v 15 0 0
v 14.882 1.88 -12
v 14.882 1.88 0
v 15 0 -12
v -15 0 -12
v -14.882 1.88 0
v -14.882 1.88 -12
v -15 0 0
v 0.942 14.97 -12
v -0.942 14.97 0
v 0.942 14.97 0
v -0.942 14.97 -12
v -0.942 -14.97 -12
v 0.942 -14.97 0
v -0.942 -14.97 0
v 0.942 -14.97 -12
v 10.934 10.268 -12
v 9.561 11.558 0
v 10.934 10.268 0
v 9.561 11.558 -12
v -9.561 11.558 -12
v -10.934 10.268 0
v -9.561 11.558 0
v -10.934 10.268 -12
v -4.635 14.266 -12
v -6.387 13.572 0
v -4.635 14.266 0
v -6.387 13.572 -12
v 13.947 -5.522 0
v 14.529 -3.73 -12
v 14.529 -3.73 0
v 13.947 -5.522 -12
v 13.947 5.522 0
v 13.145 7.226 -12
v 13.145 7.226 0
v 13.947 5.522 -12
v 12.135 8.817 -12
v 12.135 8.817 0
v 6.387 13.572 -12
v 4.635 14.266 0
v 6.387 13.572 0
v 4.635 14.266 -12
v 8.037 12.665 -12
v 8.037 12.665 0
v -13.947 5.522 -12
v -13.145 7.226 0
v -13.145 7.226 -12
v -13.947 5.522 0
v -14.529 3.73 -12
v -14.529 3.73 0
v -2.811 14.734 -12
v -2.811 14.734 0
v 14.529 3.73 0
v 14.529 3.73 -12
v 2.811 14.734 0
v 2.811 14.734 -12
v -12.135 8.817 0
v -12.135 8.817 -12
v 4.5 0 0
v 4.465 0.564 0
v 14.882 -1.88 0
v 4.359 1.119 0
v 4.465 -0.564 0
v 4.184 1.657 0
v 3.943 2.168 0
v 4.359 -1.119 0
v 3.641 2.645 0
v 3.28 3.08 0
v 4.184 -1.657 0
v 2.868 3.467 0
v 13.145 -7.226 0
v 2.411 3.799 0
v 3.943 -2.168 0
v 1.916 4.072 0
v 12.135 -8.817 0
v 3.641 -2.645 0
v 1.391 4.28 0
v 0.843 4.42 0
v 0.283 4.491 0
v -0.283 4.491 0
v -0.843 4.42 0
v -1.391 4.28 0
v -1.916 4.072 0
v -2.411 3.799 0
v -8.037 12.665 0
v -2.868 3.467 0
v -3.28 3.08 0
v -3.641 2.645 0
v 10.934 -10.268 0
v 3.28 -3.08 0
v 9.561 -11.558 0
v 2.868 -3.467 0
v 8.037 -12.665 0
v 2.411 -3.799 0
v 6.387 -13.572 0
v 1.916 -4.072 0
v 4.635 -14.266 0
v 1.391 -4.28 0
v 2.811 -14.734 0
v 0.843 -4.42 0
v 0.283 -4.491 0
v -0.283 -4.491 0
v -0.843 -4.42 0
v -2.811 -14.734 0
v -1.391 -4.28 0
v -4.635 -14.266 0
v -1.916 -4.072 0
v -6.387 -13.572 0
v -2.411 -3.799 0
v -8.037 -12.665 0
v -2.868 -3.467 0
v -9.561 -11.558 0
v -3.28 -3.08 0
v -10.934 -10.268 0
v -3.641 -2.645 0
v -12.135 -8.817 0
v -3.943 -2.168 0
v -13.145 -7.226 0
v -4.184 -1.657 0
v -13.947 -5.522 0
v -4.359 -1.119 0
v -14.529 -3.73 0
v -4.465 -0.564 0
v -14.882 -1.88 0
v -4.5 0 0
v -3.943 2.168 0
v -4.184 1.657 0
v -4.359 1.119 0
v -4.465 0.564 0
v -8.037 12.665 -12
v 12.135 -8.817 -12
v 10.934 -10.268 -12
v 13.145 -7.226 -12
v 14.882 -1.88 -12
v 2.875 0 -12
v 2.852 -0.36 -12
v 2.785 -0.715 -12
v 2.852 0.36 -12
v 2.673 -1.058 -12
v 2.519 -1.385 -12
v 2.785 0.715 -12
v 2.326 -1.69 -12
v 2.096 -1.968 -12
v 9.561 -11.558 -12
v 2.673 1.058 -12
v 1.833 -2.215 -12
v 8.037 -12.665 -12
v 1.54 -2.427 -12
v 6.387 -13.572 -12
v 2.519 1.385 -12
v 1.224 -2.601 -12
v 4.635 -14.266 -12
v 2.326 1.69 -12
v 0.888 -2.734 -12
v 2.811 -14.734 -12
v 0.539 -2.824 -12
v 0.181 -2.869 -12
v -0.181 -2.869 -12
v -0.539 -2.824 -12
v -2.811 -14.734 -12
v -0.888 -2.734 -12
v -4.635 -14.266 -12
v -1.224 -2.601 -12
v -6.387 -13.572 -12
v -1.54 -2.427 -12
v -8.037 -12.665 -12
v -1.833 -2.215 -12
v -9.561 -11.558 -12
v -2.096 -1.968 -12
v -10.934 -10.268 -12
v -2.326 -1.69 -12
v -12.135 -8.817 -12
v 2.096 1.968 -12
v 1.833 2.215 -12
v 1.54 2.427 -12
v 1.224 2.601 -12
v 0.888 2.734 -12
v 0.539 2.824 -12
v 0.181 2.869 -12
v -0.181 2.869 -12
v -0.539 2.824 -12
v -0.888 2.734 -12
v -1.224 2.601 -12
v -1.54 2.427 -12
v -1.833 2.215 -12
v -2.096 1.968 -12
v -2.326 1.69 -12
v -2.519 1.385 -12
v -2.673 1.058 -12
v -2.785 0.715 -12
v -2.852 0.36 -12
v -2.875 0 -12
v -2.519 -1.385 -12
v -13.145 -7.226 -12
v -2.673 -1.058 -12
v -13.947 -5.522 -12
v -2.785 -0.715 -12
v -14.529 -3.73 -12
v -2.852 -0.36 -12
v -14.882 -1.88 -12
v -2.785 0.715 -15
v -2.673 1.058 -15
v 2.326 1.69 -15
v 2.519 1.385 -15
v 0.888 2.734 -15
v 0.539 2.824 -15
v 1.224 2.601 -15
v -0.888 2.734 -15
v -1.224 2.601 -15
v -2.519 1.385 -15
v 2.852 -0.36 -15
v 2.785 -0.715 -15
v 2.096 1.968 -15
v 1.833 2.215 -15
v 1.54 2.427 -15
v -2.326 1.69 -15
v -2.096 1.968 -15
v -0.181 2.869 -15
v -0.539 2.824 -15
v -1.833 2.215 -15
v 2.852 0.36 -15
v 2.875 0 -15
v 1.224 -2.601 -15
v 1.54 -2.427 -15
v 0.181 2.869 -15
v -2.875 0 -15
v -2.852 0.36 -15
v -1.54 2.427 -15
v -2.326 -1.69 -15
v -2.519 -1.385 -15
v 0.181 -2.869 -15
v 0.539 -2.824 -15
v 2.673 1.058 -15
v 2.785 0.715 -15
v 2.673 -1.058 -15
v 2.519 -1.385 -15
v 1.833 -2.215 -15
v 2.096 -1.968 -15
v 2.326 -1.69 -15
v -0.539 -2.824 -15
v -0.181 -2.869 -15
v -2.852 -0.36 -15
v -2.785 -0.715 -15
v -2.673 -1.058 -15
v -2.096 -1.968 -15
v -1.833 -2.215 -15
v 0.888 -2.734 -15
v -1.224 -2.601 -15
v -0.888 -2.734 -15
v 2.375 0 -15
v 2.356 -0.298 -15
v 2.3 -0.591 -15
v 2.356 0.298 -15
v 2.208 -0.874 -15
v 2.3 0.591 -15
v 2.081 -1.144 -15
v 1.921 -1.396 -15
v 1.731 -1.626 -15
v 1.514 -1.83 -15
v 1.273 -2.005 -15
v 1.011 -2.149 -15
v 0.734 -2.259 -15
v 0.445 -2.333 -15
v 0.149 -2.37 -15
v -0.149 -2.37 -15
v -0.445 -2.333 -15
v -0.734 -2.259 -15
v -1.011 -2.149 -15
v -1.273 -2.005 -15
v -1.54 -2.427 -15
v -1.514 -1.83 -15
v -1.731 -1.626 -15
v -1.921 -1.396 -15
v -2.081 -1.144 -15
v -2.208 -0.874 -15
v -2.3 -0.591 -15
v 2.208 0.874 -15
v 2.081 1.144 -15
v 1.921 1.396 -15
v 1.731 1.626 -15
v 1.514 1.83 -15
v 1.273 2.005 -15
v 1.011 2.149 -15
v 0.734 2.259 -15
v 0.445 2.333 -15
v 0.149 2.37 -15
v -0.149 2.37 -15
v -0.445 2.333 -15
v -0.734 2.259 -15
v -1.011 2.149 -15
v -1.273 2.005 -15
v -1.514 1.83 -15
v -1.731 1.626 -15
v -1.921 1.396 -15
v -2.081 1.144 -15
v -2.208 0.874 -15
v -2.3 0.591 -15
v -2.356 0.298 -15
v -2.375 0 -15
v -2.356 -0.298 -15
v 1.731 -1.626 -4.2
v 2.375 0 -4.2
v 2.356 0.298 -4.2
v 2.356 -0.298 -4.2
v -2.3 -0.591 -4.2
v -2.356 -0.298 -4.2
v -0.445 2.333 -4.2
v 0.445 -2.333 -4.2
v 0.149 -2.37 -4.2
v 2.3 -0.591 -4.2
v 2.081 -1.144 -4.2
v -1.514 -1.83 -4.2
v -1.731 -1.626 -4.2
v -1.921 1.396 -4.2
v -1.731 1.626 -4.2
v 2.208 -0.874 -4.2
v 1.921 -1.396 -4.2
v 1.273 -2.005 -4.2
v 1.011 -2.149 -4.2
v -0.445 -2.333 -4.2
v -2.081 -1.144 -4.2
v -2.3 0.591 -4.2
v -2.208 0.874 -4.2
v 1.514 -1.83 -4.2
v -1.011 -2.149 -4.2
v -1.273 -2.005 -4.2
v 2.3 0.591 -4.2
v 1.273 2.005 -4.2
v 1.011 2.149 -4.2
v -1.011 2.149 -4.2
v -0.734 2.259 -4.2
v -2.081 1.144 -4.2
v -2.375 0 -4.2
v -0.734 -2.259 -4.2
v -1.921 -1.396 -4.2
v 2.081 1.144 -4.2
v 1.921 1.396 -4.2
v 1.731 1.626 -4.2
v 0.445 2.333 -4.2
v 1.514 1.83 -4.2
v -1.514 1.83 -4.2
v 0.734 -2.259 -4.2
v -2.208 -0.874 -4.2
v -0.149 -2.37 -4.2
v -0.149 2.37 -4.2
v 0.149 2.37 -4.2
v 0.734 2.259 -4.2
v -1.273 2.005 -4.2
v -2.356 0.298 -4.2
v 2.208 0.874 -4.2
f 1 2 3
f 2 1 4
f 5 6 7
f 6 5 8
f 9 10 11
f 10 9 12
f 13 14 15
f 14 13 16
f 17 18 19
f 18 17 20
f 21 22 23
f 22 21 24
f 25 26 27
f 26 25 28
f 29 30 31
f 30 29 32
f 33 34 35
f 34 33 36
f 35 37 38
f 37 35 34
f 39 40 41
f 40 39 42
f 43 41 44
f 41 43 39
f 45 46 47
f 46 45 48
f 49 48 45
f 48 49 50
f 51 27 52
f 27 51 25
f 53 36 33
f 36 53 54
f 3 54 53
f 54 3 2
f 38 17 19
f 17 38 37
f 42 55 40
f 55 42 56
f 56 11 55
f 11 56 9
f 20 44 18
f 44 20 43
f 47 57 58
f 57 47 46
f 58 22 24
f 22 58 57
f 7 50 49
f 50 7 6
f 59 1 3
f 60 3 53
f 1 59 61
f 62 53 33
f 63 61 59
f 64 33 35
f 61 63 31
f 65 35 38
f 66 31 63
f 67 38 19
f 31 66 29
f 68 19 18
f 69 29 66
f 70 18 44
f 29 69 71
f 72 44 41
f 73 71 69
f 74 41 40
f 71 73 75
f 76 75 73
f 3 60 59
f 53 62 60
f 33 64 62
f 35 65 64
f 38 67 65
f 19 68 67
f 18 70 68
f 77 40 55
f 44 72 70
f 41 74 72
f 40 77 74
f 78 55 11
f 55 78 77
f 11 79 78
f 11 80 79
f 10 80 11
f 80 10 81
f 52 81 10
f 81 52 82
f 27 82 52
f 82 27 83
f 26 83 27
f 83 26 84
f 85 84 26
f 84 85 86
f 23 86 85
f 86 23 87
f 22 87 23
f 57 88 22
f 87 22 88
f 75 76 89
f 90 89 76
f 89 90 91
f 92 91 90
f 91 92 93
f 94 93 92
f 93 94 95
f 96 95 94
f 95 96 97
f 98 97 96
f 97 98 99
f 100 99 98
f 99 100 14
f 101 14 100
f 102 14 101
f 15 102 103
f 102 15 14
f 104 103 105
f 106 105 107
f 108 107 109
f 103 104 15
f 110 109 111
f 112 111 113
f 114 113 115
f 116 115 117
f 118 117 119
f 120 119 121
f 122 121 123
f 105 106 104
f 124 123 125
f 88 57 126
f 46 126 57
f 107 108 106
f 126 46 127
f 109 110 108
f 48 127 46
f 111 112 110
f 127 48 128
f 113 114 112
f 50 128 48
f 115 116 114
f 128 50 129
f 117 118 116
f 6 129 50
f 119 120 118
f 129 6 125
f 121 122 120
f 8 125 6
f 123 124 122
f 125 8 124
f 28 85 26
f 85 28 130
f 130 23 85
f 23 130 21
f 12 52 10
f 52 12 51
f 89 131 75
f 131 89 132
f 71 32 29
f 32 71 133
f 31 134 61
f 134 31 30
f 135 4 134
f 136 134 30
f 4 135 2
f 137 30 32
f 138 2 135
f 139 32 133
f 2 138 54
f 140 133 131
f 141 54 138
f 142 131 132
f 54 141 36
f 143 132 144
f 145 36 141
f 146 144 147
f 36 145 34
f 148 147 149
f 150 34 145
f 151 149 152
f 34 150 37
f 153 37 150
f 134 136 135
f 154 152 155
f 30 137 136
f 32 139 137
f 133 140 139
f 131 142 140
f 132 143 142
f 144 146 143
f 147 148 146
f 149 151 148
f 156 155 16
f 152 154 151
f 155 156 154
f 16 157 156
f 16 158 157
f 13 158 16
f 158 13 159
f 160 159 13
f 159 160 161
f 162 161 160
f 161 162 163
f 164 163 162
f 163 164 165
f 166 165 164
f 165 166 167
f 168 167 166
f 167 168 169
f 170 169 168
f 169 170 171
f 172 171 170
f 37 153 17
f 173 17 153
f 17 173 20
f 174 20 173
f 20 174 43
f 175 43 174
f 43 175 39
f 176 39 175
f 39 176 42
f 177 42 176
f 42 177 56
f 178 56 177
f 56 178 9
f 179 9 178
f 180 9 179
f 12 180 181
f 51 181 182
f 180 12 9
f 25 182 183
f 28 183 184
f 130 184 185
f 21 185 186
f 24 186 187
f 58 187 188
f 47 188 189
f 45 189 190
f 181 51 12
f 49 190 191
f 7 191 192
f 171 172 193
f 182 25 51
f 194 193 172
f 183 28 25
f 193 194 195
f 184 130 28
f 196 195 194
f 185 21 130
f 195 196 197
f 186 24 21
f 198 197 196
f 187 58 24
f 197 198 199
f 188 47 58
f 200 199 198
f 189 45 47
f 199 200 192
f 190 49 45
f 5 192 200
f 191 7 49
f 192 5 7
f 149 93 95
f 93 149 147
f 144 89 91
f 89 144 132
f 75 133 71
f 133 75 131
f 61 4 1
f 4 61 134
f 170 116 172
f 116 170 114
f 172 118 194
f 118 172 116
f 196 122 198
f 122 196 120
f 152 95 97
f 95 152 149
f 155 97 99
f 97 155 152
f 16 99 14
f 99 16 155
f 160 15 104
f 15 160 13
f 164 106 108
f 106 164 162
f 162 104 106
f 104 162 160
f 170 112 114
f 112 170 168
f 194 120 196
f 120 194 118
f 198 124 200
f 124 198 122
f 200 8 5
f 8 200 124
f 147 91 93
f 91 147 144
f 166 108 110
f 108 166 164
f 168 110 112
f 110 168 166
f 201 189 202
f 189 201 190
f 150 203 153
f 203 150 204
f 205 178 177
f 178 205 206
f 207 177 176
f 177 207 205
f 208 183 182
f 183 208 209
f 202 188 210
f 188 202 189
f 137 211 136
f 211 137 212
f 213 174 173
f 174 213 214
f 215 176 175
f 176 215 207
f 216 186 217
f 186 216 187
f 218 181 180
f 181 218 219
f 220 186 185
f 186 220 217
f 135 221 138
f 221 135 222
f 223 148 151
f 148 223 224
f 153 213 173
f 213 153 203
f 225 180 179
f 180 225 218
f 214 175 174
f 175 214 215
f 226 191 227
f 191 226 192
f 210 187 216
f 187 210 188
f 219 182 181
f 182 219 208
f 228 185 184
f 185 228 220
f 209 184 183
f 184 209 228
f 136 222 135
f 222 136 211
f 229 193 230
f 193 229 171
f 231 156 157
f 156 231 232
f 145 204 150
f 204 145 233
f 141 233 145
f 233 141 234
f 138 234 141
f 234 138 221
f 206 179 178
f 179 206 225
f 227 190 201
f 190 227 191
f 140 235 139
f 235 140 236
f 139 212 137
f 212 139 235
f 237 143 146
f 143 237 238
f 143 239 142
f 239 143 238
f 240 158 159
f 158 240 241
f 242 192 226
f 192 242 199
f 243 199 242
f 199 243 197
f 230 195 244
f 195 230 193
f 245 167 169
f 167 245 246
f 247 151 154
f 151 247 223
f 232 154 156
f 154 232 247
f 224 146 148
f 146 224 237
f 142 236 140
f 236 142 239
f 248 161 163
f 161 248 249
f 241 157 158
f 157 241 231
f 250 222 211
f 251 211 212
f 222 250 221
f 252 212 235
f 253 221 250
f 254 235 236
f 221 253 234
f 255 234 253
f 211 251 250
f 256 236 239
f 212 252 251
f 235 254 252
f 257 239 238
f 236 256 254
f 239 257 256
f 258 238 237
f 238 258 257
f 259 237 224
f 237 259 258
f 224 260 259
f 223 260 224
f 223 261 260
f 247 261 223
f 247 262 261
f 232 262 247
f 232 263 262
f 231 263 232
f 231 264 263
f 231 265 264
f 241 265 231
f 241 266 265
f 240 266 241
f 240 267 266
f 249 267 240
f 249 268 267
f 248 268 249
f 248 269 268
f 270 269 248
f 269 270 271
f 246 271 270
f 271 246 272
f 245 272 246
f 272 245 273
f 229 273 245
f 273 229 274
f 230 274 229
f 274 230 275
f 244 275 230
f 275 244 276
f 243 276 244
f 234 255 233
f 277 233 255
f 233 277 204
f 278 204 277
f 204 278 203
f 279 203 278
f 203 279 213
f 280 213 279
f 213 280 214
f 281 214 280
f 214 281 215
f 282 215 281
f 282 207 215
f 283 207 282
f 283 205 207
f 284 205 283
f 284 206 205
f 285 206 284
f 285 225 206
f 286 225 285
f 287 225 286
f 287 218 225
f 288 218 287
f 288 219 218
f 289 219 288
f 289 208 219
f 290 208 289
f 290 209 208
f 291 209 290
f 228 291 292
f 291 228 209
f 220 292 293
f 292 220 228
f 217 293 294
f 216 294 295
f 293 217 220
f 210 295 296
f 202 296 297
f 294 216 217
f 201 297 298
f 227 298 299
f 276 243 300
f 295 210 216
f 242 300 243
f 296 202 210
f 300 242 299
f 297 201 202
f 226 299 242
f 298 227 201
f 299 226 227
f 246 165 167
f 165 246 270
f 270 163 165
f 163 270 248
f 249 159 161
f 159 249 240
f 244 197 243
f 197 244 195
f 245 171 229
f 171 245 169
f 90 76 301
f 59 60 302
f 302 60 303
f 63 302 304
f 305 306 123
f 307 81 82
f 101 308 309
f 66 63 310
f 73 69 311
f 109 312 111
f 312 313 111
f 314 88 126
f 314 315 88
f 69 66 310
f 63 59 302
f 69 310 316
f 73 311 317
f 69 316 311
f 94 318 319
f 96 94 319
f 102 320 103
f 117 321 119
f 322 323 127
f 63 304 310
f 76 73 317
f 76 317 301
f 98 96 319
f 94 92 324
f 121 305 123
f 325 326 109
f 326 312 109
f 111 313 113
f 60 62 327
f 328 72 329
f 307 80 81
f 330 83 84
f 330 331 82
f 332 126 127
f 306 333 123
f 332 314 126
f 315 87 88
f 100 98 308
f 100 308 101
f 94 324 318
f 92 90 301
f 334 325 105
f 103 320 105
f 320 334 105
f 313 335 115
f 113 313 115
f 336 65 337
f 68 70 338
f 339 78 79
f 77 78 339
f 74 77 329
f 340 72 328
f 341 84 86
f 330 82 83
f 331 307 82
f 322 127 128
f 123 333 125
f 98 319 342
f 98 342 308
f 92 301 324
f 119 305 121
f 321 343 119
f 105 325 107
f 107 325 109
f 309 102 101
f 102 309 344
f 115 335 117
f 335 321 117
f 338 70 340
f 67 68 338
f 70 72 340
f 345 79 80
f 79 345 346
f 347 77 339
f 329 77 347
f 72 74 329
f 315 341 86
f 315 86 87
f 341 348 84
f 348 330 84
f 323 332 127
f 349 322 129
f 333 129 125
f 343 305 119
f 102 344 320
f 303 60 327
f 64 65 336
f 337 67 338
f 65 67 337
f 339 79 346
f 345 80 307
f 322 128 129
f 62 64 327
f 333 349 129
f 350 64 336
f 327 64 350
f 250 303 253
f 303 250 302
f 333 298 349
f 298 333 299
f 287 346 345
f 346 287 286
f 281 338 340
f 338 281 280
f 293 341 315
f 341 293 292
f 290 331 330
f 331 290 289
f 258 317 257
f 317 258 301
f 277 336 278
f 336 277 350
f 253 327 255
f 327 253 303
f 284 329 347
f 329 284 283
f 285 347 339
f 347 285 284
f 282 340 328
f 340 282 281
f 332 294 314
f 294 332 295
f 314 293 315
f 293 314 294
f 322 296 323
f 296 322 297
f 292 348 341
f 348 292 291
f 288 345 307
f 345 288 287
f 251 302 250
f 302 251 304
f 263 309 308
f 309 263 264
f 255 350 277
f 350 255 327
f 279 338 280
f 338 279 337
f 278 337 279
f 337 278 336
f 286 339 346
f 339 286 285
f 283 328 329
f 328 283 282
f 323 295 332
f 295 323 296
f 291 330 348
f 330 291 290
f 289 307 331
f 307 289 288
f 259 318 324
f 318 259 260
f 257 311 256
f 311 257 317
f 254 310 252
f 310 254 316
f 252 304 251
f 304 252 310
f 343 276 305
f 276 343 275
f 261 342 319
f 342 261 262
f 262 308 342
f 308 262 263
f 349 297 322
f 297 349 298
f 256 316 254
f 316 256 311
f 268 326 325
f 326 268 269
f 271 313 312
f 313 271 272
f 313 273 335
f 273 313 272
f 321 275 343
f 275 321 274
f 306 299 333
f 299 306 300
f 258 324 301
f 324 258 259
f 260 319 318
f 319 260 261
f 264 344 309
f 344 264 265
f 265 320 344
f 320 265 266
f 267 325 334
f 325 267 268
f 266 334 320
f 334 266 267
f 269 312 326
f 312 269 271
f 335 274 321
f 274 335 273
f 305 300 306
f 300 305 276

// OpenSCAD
$fn = 50;


difference() {
	union() {
		translate(v = [0, 0, -12.0000000000]) {
			cylinder(h = 12, r = 15.0000000000);
		}
		translate(v = [0, 0, -15.0000000000]) {
			cylinder(h = 15, r = 2.8750000000);
		}
	}
	union() {
		translate(v = [0, 0, 0]) {
			rotate(a = [0, 0, 0]) {
				difference() {
					union() {
						translate(v = [0, 0, -15.0000000000]) {
							cylinder(h = 15, r = 2.2500000000);
						}
						translate(v = [0, 0, -4.2000000000]) {
							cylinder(h = 4.2000000000, r1 = 2.3750000000, r2 = 4.5000000000);
						}
						translate(v = [0, 0, -15.0000000000]) {
							cylinder(h = 15, r = 2.3750000000);
						}
						translate(v = [0, 0, -15.0000000000]) {
							cylinder(h = 15, r = 2.2500000000);
						}
					}
					union();
				}
			}
		}
	}
}
